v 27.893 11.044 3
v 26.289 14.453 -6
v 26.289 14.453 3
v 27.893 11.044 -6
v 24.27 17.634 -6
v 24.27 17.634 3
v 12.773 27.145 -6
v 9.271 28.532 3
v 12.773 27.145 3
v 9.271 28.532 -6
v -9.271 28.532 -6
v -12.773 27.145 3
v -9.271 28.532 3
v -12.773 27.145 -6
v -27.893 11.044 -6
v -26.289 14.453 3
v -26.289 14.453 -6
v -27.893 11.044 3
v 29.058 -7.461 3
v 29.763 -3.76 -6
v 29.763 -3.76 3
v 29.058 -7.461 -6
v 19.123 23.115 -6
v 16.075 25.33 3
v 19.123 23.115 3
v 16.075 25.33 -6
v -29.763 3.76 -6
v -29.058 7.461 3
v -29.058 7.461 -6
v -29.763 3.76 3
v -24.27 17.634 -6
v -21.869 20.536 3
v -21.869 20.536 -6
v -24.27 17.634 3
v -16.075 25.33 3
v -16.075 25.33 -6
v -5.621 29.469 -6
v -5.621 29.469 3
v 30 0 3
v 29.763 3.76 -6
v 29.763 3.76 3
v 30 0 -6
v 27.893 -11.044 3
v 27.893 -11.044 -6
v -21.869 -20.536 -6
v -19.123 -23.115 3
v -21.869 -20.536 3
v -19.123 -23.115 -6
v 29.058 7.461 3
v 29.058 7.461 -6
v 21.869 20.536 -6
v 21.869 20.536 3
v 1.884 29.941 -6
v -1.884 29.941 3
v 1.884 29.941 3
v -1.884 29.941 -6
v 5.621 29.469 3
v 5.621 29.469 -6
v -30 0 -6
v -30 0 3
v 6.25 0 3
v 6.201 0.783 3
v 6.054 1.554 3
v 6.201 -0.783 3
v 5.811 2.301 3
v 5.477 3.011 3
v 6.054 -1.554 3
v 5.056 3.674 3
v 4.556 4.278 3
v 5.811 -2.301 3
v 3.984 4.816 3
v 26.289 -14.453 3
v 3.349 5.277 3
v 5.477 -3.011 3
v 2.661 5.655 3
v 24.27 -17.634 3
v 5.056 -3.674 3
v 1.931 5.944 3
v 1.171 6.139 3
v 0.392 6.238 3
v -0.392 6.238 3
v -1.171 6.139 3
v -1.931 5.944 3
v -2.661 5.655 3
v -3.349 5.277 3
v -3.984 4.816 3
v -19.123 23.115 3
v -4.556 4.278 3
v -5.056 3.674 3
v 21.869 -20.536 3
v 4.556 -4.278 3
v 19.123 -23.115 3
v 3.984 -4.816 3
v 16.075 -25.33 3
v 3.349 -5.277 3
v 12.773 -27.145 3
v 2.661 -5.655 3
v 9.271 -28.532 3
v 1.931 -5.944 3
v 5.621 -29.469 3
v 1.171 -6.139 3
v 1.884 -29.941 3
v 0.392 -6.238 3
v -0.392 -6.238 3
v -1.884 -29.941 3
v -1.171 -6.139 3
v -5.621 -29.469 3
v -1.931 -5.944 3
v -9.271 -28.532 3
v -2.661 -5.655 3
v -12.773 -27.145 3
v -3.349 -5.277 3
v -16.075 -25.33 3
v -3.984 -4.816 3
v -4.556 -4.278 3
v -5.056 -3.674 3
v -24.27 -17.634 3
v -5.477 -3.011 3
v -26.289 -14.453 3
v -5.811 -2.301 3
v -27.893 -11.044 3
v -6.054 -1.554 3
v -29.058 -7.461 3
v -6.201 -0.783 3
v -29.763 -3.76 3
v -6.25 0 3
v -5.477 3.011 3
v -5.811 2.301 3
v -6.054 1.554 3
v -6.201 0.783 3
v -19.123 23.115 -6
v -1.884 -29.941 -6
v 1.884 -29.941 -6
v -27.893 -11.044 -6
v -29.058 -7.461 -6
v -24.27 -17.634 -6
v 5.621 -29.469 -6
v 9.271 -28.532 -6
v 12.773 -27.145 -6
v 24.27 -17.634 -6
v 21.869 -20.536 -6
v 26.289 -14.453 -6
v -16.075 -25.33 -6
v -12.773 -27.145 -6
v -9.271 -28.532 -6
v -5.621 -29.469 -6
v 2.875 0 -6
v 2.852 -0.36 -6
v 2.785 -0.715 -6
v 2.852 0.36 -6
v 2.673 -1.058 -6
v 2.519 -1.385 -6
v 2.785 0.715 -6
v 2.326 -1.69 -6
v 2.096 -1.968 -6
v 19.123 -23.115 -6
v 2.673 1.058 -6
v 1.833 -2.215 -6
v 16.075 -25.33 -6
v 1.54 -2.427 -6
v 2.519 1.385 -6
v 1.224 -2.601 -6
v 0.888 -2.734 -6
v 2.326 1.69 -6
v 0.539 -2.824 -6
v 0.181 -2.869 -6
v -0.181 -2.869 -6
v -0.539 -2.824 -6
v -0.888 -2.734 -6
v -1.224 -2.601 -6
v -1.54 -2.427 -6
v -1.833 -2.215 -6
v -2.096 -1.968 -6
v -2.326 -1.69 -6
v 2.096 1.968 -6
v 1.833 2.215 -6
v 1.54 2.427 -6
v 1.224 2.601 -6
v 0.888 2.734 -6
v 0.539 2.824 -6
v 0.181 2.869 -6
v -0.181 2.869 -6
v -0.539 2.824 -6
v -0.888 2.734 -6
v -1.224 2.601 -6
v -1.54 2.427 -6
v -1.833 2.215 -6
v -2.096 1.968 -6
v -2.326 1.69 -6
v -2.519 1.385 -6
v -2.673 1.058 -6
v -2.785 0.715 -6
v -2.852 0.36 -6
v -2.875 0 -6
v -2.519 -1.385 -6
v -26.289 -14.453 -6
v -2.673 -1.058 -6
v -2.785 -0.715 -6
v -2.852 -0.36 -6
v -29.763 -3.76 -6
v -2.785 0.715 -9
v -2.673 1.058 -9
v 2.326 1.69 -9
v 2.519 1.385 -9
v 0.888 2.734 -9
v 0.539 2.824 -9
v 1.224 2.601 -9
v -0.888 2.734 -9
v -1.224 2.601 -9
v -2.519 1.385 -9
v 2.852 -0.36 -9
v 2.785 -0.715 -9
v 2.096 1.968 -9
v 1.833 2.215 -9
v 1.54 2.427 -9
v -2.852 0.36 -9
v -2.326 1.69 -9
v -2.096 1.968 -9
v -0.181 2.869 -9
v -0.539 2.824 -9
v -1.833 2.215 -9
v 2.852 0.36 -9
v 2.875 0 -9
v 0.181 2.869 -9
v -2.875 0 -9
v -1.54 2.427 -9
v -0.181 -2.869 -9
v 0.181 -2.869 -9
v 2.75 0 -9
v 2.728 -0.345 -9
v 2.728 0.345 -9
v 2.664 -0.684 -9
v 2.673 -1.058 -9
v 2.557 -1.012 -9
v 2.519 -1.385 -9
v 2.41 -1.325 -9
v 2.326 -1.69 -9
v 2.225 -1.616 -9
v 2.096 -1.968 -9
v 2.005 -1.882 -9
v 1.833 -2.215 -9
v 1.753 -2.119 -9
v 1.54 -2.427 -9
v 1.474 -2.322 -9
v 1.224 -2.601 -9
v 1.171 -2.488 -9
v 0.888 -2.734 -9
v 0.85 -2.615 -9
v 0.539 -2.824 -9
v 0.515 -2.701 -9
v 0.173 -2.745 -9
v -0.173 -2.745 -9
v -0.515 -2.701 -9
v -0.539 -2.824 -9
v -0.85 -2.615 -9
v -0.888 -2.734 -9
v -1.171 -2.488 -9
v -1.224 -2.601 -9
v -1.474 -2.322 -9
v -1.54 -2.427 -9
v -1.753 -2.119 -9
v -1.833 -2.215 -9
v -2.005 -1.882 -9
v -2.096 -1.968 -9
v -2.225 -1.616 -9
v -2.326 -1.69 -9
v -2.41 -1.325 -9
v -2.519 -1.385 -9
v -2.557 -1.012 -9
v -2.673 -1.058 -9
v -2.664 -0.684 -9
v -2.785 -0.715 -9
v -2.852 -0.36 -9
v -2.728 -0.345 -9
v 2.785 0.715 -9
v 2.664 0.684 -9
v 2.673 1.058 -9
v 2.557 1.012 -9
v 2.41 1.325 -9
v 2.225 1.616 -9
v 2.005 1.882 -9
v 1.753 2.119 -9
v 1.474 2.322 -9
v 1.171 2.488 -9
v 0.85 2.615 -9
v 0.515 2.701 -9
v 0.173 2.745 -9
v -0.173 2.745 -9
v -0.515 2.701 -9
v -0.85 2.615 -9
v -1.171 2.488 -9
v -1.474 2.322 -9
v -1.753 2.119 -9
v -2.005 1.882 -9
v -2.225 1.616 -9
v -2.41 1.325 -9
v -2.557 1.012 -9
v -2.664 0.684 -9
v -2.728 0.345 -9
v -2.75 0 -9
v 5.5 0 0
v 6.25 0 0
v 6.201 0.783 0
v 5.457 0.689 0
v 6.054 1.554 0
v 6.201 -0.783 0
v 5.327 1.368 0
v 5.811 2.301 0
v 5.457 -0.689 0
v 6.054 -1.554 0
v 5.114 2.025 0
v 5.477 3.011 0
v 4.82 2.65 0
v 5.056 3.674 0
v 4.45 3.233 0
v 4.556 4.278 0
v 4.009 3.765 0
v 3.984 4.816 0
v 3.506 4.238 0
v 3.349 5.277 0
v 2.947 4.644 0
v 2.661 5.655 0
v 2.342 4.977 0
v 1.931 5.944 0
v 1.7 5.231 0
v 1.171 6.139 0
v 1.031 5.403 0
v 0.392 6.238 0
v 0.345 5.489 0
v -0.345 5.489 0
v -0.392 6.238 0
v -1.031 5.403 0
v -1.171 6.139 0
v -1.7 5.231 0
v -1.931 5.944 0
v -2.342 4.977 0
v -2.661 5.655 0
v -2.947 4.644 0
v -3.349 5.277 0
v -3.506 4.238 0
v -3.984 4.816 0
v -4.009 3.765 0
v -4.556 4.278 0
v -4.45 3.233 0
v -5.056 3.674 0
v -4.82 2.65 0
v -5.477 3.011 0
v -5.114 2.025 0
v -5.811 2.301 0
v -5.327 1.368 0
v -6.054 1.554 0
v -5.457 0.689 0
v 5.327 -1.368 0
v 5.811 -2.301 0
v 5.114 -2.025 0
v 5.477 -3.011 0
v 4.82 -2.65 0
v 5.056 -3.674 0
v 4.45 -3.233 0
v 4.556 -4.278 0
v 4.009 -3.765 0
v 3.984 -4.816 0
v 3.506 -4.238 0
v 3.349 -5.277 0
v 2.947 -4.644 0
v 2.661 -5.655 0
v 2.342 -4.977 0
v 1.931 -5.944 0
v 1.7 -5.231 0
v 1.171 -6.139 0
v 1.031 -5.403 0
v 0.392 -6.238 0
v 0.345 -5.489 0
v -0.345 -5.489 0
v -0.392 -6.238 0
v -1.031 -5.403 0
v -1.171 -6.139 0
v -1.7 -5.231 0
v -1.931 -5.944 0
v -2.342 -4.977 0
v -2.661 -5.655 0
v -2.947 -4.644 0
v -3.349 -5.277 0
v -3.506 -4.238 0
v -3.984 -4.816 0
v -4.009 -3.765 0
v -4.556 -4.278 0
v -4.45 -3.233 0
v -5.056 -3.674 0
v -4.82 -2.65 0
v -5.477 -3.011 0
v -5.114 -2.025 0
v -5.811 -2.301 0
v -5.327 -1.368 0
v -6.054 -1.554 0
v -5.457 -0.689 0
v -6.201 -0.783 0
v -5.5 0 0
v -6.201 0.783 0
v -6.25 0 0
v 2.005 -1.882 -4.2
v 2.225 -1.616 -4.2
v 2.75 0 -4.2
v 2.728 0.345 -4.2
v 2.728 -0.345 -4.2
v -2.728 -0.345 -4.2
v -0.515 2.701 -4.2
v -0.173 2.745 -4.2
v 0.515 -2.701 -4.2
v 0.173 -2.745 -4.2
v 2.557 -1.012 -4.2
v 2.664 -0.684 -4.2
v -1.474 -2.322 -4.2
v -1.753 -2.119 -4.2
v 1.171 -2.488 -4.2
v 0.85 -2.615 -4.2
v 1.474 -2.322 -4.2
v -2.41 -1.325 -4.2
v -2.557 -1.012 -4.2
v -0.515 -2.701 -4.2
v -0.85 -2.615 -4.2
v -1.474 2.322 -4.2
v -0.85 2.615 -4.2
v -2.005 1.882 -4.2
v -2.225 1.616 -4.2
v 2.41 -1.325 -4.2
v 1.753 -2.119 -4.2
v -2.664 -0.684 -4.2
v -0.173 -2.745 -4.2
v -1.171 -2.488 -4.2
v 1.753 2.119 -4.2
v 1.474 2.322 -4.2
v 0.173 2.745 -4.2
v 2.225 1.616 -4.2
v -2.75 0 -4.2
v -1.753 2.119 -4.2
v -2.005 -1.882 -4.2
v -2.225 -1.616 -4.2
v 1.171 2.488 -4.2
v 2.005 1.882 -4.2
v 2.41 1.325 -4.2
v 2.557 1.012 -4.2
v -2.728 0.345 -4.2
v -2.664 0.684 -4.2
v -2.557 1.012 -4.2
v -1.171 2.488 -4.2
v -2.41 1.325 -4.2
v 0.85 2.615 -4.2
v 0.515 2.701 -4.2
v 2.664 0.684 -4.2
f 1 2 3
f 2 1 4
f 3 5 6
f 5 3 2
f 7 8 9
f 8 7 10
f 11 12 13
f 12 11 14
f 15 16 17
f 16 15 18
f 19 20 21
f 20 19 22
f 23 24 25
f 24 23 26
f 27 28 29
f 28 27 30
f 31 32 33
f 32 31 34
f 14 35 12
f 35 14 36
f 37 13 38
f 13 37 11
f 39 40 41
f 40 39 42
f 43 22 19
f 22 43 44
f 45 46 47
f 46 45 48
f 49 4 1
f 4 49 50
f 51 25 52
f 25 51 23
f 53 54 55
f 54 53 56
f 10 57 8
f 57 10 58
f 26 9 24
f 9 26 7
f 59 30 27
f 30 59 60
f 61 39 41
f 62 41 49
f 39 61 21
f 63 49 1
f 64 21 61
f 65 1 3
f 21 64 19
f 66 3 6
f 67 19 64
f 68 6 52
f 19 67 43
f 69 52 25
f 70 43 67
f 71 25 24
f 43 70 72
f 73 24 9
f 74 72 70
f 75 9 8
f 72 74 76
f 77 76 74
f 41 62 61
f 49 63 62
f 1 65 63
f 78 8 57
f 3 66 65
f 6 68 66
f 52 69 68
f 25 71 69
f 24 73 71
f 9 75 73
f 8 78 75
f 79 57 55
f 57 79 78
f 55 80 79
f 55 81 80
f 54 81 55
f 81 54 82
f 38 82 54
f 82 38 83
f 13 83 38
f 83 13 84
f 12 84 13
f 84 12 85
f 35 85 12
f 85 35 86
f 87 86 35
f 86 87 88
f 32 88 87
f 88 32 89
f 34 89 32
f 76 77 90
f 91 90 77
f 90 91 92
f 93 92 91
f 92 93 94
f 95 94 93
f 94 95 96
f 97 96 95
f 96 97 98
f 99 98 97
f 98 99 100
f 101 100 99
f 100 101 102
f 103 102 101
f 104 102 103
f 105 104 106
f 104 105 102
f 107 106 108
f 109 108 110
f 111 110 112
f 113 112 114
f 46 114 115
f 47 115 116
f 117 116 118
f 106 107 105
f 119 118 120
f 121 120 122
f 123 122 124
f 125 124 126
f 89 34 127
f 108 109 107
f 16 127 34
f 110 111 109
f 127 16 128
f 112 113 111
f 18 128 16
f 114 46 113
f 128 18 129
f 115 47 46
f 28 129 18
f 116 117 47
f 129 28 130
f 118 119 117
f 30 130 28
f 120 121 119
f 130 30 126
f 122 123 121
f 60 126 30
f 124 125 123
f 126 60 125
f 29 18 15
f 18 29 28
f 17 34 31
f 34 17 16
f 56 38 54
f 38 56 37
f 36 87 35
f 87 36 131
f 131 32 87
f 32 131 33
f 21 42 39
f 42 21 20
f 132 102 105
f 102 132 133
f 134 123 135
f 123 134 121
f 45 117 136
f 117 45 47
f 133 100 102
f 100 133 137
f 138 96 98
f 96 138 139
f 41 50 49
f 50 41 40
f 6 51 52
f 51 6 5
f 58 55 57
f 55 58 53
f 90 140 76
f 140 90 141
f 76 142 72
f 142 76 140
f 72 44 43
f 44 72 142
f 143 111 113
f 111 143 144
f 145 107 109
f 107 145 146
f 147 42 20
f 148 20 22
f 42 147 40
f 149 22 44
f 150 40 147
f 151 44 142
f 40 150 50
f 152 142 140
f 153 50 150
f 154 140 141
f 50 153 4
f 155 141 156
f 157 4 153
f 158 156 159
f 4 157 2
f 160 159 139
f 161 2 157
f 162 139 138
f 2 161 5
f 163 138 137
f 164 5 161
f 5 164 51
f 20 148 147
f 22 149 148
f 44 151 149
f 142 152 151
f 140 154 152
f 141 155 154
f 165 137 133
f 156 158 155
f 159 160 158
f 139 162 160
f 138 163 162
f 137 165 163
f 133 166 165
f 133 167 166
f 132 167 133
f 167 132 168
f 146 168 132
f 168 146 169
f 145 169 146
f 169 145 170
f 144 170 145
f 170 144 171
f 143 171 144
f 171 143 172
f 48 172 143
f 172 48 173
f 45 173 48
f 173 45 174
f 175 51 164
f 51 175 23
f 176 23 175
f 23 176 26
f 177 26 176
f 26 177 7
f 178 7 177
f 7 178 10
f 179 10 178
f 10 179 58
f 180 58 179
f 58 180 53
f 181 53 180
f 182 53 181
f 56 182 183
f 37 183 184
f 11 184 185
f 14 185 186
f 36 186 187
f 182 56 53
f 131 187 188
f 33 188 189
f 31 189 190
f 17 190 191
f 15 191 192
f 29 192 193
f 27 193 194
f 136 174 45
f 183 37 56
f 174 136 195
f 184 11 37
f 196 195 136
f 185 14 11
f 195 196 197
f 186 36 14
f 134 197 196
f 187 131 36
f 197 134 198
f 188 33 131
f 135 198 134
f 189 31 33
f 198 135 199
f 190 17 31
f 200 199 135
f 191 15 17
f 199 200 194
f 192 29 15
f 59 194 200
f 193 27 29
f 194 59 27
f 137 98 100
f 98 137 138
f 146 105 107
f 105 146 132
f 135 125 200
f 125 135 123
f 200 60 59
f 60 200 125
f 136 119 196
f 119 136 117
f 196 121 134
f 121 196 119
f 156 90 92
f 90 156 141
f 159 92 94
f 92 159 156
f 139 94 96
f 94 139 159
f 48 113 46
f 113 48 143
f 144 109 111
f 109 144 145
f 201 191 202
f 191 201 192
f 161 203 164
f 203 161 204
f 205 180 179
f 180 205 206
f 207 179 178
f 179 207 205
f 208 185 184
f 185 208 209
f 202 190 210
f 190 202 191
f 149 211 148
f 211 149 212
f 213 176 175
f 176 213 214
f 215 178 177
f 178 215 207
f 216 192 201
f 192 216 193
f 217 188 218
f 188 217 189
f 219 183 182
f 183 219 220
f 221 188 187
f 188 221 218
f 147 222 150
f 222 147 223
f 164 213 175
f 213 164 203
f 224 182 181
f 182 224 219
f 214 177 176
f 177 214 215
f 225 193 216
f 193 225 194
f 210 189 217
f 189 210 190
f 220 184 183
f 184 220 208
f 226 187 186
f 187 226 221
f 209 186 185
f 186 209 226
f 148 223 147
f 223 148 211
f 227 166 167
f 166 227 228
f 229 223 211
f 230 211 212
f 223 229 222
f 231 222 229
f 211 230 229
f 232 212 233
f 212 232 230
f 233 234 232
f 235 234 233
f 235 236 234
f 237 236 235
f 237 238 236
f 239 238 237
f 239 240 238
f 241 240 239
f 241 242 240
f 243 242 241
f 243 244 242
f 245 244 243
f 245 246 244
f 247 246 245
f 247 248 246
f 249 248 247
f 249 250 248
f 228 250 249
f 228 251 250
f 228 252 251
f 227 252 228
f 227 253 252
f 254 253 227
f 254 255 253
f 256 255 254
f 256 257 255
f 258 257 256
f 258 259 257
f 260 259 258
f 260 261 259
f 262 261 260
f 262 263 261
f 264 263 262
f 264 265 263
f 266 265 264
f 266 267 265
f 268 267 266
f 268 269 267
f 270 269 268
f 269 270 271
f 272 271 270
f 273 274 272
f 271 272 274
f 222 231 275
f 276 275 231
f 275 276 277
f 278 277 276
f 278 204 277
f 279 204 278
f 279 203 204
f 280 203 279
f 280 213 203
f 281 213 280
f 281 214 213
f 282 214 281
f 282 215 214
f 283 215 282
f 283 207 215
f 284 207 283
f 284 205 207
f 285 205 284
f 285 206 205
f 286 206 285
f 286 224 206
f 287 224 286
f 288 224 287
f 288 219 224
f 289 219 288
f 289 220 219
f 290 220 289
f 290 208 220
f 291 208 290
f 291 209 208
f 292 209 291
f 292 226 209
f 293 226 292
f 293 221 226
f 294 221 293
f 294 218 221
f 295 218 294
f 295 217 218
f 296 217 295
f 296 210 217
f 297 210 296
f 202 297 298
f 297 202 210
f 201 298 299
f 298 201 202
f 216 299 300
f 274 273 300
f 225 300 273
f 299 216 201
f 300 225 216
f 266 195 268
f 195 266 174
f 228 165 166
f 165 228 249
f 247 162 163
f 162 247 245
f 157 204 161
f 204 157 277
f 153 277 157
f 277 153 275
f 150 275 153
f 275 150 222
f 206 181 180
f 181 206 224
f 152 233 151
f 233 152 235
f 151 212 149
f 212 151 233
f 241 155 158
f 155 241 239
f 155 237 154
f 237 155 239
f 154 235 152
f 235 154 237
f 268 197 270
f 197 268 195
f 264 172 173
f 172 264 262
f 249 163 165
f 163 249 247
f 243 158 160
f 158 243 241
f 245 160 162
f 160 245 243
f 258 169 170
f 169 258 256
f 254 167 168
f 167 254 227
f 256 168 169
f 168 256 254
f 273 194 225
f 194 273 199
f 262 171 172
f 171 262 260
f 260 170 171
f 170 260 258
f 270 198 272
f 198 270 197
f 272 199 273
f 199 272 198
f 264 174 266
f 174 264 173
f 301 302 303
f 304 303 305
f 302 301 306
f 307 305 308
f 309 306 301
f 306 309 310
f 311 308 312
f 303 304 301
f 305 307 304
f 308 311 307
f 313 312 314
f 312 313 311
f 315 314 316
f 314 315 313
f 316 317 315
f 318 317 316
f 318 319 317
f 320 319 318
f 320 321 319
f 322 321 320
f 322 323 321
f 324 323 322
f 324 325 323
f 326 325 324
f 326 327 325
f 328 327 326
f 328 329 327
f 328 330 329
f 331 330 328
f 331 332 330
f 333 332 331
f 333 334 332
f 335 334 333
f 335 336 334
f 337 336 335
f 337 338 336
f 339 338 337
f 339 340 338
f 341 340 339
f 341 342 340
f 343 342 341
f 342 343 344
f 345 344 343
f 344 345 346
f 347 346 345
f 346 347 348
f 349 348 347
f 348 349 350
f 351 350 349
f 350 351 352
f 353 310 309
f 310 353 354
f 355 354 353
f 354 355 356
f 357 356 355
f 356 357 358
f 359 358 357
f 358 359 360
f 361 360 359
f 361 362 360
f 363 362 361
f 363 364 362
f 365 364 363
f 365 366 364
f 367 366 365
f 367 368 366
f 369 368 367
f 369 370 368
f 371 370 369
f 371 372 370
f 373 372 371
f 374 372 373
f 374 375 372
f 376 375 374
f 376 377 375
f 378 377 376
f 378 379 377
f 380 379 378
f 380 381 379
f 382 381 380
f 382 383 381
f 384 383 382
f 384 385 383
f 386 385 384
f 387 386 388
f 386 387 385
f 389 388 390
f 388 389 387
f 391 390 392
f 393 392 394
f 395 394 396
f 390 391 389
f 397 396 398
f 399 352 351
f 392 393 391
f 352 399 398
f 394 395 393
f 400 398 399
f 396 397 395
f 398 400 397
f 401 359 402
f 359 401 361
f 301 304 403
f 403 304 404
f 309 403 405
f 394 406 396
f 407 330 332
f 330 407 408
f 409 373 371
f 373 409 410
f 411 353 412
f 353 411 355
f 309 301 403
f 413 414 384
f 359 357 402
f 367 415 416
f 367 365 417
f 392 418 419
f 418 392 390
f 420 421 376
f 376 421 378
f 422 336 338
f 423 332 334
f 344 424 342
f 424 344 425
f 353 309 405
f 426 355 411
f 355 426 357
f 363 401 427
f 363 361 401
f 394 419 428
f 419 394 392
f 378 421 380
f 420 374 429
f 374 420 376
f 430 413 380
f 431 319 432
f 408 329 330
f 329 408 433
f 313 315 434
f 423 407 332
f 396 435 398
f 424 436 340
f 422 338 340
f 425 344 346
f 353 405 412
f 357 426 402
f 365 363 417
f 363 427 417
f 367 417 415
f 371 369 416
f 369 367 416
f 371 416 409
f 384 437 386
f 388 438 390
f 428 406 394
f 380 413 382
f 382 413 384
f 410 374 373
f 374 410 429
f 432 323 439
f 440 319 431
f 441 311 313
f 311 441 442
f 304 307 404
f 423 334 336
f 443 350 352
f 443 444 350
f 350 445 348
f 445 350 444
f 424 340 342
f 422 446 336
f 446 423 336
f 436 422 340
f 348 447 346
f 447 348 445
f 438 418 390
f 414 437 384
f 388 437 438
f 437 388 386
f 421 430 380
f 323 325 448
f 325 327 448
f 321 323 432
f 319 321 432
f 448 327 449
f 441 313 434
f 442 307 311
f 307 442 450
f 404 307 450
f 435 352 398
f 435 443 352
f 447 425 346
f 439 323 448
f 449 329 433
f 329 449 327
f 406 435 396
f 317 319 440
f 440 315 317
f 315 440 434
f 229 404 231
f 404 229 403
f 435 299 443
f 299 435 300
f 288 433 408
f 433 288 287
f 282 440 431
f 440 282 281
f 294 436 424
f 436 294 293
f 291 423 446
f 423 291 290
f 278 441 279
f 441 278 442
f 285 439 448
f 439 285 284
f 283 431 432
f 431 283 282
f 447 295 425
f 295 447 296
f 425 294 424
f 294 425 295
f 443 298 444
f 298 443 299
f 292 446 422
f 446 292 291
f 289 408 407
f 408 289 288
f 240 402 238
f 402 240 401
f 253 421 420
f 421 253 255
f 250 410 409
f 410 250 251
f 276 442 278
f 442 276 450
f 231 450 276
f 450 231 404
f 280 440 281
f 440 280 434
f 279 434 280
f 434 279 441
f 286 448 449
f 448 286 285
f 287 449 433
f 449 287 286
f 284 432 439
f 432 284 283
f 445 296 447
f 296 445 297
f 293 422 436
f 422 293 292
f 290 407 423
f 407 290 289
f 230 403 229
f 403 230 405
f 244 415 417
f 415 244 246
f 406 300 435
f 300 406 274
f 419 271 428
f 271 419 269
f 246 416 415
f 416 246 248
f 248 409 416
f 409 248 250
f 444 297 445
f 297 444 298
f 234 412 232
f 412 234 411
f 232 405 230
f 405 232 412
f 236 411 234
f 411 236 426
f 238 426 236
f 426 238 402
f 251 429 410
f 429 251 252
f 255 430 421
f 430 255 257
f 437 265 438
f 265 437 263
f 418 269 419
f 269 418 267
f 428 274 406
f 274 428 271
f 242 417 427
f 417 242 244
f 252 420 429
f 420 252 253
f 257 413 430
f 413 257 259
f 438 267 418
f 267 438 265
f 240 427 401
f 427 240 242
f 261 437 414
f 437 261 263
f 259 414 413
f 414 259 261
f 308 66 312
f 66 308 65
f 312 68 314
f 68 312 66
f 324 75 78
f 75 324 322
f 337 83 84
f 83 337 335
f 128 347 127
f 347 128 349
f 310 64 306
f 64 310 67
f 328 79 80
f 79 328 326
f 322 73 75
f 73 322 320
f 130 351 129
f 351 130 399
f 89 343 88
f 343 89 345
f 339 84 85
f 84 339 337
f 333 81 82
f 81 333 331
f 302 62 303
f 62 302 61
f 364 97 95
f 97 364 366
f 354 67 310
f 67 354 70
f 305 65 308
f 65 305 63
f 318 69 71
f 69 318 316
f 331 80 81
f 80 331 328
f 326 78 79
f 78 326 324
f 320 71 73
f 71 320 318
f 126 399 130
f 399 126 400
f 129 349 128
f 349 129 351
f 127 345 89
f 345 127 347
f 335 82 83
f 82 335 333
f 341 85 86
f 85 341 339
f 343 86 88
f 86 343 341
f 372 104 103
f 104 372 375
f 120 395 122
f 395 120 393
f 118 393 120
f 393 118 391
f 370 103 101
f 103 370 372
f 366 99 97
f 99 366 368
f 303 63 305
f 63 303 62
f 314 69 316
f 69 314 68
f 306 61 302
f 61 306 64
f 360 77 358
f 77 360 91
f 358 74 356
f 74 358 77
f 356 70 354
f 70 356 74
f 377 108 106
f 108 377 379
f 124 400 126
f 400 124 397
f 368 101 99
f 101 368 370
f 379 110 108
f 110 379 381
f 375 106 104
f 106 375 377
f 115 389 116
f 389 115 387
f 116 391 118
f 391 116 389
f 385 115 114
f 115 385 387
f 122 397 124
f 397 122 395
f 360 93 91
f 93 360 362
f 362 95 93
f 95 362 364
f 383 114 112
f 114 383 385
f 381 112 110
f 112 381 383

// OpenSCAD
$fn = 50;


difference() {
	union() {
		translate(v = [0, 0, -6.0000000000]) {
			cylinder(h = 9, r = 30.0000000000);
		}
		#translate(v = [0, 0, -9.0000000000]) {
			cylinder(h = 9, r = 2.8750000000);
		}
	}
	union() {
		translate(v = [0, 0, 0]) {
			rotate(a = [0, 0, 0]) {
				difference() {
					union() {
						translate(v = [0, 0, -9.0000000000]) {
							cylinder(h = 9, r = 2.2500000000);
						}
						translate(v = [0, 0, -4.2000000000]) {
							cylinder(h = 4.2000000000, r1 = 2.7500000000, r2 = 5.5000000000);
						}
						translate(v = [0, 0, -9.0000000000]) {
							cylinder(h = 9, r = 2.7500000000);
						}
						translate(v = [0, 0, -9.0000000000]) {
							cylinder(h = 9, r = 2.2500000000);
						}
					}
					union();
				}
			}
		}
		#cylinder(h = 3, r = 6.2500000000);
	}
}
